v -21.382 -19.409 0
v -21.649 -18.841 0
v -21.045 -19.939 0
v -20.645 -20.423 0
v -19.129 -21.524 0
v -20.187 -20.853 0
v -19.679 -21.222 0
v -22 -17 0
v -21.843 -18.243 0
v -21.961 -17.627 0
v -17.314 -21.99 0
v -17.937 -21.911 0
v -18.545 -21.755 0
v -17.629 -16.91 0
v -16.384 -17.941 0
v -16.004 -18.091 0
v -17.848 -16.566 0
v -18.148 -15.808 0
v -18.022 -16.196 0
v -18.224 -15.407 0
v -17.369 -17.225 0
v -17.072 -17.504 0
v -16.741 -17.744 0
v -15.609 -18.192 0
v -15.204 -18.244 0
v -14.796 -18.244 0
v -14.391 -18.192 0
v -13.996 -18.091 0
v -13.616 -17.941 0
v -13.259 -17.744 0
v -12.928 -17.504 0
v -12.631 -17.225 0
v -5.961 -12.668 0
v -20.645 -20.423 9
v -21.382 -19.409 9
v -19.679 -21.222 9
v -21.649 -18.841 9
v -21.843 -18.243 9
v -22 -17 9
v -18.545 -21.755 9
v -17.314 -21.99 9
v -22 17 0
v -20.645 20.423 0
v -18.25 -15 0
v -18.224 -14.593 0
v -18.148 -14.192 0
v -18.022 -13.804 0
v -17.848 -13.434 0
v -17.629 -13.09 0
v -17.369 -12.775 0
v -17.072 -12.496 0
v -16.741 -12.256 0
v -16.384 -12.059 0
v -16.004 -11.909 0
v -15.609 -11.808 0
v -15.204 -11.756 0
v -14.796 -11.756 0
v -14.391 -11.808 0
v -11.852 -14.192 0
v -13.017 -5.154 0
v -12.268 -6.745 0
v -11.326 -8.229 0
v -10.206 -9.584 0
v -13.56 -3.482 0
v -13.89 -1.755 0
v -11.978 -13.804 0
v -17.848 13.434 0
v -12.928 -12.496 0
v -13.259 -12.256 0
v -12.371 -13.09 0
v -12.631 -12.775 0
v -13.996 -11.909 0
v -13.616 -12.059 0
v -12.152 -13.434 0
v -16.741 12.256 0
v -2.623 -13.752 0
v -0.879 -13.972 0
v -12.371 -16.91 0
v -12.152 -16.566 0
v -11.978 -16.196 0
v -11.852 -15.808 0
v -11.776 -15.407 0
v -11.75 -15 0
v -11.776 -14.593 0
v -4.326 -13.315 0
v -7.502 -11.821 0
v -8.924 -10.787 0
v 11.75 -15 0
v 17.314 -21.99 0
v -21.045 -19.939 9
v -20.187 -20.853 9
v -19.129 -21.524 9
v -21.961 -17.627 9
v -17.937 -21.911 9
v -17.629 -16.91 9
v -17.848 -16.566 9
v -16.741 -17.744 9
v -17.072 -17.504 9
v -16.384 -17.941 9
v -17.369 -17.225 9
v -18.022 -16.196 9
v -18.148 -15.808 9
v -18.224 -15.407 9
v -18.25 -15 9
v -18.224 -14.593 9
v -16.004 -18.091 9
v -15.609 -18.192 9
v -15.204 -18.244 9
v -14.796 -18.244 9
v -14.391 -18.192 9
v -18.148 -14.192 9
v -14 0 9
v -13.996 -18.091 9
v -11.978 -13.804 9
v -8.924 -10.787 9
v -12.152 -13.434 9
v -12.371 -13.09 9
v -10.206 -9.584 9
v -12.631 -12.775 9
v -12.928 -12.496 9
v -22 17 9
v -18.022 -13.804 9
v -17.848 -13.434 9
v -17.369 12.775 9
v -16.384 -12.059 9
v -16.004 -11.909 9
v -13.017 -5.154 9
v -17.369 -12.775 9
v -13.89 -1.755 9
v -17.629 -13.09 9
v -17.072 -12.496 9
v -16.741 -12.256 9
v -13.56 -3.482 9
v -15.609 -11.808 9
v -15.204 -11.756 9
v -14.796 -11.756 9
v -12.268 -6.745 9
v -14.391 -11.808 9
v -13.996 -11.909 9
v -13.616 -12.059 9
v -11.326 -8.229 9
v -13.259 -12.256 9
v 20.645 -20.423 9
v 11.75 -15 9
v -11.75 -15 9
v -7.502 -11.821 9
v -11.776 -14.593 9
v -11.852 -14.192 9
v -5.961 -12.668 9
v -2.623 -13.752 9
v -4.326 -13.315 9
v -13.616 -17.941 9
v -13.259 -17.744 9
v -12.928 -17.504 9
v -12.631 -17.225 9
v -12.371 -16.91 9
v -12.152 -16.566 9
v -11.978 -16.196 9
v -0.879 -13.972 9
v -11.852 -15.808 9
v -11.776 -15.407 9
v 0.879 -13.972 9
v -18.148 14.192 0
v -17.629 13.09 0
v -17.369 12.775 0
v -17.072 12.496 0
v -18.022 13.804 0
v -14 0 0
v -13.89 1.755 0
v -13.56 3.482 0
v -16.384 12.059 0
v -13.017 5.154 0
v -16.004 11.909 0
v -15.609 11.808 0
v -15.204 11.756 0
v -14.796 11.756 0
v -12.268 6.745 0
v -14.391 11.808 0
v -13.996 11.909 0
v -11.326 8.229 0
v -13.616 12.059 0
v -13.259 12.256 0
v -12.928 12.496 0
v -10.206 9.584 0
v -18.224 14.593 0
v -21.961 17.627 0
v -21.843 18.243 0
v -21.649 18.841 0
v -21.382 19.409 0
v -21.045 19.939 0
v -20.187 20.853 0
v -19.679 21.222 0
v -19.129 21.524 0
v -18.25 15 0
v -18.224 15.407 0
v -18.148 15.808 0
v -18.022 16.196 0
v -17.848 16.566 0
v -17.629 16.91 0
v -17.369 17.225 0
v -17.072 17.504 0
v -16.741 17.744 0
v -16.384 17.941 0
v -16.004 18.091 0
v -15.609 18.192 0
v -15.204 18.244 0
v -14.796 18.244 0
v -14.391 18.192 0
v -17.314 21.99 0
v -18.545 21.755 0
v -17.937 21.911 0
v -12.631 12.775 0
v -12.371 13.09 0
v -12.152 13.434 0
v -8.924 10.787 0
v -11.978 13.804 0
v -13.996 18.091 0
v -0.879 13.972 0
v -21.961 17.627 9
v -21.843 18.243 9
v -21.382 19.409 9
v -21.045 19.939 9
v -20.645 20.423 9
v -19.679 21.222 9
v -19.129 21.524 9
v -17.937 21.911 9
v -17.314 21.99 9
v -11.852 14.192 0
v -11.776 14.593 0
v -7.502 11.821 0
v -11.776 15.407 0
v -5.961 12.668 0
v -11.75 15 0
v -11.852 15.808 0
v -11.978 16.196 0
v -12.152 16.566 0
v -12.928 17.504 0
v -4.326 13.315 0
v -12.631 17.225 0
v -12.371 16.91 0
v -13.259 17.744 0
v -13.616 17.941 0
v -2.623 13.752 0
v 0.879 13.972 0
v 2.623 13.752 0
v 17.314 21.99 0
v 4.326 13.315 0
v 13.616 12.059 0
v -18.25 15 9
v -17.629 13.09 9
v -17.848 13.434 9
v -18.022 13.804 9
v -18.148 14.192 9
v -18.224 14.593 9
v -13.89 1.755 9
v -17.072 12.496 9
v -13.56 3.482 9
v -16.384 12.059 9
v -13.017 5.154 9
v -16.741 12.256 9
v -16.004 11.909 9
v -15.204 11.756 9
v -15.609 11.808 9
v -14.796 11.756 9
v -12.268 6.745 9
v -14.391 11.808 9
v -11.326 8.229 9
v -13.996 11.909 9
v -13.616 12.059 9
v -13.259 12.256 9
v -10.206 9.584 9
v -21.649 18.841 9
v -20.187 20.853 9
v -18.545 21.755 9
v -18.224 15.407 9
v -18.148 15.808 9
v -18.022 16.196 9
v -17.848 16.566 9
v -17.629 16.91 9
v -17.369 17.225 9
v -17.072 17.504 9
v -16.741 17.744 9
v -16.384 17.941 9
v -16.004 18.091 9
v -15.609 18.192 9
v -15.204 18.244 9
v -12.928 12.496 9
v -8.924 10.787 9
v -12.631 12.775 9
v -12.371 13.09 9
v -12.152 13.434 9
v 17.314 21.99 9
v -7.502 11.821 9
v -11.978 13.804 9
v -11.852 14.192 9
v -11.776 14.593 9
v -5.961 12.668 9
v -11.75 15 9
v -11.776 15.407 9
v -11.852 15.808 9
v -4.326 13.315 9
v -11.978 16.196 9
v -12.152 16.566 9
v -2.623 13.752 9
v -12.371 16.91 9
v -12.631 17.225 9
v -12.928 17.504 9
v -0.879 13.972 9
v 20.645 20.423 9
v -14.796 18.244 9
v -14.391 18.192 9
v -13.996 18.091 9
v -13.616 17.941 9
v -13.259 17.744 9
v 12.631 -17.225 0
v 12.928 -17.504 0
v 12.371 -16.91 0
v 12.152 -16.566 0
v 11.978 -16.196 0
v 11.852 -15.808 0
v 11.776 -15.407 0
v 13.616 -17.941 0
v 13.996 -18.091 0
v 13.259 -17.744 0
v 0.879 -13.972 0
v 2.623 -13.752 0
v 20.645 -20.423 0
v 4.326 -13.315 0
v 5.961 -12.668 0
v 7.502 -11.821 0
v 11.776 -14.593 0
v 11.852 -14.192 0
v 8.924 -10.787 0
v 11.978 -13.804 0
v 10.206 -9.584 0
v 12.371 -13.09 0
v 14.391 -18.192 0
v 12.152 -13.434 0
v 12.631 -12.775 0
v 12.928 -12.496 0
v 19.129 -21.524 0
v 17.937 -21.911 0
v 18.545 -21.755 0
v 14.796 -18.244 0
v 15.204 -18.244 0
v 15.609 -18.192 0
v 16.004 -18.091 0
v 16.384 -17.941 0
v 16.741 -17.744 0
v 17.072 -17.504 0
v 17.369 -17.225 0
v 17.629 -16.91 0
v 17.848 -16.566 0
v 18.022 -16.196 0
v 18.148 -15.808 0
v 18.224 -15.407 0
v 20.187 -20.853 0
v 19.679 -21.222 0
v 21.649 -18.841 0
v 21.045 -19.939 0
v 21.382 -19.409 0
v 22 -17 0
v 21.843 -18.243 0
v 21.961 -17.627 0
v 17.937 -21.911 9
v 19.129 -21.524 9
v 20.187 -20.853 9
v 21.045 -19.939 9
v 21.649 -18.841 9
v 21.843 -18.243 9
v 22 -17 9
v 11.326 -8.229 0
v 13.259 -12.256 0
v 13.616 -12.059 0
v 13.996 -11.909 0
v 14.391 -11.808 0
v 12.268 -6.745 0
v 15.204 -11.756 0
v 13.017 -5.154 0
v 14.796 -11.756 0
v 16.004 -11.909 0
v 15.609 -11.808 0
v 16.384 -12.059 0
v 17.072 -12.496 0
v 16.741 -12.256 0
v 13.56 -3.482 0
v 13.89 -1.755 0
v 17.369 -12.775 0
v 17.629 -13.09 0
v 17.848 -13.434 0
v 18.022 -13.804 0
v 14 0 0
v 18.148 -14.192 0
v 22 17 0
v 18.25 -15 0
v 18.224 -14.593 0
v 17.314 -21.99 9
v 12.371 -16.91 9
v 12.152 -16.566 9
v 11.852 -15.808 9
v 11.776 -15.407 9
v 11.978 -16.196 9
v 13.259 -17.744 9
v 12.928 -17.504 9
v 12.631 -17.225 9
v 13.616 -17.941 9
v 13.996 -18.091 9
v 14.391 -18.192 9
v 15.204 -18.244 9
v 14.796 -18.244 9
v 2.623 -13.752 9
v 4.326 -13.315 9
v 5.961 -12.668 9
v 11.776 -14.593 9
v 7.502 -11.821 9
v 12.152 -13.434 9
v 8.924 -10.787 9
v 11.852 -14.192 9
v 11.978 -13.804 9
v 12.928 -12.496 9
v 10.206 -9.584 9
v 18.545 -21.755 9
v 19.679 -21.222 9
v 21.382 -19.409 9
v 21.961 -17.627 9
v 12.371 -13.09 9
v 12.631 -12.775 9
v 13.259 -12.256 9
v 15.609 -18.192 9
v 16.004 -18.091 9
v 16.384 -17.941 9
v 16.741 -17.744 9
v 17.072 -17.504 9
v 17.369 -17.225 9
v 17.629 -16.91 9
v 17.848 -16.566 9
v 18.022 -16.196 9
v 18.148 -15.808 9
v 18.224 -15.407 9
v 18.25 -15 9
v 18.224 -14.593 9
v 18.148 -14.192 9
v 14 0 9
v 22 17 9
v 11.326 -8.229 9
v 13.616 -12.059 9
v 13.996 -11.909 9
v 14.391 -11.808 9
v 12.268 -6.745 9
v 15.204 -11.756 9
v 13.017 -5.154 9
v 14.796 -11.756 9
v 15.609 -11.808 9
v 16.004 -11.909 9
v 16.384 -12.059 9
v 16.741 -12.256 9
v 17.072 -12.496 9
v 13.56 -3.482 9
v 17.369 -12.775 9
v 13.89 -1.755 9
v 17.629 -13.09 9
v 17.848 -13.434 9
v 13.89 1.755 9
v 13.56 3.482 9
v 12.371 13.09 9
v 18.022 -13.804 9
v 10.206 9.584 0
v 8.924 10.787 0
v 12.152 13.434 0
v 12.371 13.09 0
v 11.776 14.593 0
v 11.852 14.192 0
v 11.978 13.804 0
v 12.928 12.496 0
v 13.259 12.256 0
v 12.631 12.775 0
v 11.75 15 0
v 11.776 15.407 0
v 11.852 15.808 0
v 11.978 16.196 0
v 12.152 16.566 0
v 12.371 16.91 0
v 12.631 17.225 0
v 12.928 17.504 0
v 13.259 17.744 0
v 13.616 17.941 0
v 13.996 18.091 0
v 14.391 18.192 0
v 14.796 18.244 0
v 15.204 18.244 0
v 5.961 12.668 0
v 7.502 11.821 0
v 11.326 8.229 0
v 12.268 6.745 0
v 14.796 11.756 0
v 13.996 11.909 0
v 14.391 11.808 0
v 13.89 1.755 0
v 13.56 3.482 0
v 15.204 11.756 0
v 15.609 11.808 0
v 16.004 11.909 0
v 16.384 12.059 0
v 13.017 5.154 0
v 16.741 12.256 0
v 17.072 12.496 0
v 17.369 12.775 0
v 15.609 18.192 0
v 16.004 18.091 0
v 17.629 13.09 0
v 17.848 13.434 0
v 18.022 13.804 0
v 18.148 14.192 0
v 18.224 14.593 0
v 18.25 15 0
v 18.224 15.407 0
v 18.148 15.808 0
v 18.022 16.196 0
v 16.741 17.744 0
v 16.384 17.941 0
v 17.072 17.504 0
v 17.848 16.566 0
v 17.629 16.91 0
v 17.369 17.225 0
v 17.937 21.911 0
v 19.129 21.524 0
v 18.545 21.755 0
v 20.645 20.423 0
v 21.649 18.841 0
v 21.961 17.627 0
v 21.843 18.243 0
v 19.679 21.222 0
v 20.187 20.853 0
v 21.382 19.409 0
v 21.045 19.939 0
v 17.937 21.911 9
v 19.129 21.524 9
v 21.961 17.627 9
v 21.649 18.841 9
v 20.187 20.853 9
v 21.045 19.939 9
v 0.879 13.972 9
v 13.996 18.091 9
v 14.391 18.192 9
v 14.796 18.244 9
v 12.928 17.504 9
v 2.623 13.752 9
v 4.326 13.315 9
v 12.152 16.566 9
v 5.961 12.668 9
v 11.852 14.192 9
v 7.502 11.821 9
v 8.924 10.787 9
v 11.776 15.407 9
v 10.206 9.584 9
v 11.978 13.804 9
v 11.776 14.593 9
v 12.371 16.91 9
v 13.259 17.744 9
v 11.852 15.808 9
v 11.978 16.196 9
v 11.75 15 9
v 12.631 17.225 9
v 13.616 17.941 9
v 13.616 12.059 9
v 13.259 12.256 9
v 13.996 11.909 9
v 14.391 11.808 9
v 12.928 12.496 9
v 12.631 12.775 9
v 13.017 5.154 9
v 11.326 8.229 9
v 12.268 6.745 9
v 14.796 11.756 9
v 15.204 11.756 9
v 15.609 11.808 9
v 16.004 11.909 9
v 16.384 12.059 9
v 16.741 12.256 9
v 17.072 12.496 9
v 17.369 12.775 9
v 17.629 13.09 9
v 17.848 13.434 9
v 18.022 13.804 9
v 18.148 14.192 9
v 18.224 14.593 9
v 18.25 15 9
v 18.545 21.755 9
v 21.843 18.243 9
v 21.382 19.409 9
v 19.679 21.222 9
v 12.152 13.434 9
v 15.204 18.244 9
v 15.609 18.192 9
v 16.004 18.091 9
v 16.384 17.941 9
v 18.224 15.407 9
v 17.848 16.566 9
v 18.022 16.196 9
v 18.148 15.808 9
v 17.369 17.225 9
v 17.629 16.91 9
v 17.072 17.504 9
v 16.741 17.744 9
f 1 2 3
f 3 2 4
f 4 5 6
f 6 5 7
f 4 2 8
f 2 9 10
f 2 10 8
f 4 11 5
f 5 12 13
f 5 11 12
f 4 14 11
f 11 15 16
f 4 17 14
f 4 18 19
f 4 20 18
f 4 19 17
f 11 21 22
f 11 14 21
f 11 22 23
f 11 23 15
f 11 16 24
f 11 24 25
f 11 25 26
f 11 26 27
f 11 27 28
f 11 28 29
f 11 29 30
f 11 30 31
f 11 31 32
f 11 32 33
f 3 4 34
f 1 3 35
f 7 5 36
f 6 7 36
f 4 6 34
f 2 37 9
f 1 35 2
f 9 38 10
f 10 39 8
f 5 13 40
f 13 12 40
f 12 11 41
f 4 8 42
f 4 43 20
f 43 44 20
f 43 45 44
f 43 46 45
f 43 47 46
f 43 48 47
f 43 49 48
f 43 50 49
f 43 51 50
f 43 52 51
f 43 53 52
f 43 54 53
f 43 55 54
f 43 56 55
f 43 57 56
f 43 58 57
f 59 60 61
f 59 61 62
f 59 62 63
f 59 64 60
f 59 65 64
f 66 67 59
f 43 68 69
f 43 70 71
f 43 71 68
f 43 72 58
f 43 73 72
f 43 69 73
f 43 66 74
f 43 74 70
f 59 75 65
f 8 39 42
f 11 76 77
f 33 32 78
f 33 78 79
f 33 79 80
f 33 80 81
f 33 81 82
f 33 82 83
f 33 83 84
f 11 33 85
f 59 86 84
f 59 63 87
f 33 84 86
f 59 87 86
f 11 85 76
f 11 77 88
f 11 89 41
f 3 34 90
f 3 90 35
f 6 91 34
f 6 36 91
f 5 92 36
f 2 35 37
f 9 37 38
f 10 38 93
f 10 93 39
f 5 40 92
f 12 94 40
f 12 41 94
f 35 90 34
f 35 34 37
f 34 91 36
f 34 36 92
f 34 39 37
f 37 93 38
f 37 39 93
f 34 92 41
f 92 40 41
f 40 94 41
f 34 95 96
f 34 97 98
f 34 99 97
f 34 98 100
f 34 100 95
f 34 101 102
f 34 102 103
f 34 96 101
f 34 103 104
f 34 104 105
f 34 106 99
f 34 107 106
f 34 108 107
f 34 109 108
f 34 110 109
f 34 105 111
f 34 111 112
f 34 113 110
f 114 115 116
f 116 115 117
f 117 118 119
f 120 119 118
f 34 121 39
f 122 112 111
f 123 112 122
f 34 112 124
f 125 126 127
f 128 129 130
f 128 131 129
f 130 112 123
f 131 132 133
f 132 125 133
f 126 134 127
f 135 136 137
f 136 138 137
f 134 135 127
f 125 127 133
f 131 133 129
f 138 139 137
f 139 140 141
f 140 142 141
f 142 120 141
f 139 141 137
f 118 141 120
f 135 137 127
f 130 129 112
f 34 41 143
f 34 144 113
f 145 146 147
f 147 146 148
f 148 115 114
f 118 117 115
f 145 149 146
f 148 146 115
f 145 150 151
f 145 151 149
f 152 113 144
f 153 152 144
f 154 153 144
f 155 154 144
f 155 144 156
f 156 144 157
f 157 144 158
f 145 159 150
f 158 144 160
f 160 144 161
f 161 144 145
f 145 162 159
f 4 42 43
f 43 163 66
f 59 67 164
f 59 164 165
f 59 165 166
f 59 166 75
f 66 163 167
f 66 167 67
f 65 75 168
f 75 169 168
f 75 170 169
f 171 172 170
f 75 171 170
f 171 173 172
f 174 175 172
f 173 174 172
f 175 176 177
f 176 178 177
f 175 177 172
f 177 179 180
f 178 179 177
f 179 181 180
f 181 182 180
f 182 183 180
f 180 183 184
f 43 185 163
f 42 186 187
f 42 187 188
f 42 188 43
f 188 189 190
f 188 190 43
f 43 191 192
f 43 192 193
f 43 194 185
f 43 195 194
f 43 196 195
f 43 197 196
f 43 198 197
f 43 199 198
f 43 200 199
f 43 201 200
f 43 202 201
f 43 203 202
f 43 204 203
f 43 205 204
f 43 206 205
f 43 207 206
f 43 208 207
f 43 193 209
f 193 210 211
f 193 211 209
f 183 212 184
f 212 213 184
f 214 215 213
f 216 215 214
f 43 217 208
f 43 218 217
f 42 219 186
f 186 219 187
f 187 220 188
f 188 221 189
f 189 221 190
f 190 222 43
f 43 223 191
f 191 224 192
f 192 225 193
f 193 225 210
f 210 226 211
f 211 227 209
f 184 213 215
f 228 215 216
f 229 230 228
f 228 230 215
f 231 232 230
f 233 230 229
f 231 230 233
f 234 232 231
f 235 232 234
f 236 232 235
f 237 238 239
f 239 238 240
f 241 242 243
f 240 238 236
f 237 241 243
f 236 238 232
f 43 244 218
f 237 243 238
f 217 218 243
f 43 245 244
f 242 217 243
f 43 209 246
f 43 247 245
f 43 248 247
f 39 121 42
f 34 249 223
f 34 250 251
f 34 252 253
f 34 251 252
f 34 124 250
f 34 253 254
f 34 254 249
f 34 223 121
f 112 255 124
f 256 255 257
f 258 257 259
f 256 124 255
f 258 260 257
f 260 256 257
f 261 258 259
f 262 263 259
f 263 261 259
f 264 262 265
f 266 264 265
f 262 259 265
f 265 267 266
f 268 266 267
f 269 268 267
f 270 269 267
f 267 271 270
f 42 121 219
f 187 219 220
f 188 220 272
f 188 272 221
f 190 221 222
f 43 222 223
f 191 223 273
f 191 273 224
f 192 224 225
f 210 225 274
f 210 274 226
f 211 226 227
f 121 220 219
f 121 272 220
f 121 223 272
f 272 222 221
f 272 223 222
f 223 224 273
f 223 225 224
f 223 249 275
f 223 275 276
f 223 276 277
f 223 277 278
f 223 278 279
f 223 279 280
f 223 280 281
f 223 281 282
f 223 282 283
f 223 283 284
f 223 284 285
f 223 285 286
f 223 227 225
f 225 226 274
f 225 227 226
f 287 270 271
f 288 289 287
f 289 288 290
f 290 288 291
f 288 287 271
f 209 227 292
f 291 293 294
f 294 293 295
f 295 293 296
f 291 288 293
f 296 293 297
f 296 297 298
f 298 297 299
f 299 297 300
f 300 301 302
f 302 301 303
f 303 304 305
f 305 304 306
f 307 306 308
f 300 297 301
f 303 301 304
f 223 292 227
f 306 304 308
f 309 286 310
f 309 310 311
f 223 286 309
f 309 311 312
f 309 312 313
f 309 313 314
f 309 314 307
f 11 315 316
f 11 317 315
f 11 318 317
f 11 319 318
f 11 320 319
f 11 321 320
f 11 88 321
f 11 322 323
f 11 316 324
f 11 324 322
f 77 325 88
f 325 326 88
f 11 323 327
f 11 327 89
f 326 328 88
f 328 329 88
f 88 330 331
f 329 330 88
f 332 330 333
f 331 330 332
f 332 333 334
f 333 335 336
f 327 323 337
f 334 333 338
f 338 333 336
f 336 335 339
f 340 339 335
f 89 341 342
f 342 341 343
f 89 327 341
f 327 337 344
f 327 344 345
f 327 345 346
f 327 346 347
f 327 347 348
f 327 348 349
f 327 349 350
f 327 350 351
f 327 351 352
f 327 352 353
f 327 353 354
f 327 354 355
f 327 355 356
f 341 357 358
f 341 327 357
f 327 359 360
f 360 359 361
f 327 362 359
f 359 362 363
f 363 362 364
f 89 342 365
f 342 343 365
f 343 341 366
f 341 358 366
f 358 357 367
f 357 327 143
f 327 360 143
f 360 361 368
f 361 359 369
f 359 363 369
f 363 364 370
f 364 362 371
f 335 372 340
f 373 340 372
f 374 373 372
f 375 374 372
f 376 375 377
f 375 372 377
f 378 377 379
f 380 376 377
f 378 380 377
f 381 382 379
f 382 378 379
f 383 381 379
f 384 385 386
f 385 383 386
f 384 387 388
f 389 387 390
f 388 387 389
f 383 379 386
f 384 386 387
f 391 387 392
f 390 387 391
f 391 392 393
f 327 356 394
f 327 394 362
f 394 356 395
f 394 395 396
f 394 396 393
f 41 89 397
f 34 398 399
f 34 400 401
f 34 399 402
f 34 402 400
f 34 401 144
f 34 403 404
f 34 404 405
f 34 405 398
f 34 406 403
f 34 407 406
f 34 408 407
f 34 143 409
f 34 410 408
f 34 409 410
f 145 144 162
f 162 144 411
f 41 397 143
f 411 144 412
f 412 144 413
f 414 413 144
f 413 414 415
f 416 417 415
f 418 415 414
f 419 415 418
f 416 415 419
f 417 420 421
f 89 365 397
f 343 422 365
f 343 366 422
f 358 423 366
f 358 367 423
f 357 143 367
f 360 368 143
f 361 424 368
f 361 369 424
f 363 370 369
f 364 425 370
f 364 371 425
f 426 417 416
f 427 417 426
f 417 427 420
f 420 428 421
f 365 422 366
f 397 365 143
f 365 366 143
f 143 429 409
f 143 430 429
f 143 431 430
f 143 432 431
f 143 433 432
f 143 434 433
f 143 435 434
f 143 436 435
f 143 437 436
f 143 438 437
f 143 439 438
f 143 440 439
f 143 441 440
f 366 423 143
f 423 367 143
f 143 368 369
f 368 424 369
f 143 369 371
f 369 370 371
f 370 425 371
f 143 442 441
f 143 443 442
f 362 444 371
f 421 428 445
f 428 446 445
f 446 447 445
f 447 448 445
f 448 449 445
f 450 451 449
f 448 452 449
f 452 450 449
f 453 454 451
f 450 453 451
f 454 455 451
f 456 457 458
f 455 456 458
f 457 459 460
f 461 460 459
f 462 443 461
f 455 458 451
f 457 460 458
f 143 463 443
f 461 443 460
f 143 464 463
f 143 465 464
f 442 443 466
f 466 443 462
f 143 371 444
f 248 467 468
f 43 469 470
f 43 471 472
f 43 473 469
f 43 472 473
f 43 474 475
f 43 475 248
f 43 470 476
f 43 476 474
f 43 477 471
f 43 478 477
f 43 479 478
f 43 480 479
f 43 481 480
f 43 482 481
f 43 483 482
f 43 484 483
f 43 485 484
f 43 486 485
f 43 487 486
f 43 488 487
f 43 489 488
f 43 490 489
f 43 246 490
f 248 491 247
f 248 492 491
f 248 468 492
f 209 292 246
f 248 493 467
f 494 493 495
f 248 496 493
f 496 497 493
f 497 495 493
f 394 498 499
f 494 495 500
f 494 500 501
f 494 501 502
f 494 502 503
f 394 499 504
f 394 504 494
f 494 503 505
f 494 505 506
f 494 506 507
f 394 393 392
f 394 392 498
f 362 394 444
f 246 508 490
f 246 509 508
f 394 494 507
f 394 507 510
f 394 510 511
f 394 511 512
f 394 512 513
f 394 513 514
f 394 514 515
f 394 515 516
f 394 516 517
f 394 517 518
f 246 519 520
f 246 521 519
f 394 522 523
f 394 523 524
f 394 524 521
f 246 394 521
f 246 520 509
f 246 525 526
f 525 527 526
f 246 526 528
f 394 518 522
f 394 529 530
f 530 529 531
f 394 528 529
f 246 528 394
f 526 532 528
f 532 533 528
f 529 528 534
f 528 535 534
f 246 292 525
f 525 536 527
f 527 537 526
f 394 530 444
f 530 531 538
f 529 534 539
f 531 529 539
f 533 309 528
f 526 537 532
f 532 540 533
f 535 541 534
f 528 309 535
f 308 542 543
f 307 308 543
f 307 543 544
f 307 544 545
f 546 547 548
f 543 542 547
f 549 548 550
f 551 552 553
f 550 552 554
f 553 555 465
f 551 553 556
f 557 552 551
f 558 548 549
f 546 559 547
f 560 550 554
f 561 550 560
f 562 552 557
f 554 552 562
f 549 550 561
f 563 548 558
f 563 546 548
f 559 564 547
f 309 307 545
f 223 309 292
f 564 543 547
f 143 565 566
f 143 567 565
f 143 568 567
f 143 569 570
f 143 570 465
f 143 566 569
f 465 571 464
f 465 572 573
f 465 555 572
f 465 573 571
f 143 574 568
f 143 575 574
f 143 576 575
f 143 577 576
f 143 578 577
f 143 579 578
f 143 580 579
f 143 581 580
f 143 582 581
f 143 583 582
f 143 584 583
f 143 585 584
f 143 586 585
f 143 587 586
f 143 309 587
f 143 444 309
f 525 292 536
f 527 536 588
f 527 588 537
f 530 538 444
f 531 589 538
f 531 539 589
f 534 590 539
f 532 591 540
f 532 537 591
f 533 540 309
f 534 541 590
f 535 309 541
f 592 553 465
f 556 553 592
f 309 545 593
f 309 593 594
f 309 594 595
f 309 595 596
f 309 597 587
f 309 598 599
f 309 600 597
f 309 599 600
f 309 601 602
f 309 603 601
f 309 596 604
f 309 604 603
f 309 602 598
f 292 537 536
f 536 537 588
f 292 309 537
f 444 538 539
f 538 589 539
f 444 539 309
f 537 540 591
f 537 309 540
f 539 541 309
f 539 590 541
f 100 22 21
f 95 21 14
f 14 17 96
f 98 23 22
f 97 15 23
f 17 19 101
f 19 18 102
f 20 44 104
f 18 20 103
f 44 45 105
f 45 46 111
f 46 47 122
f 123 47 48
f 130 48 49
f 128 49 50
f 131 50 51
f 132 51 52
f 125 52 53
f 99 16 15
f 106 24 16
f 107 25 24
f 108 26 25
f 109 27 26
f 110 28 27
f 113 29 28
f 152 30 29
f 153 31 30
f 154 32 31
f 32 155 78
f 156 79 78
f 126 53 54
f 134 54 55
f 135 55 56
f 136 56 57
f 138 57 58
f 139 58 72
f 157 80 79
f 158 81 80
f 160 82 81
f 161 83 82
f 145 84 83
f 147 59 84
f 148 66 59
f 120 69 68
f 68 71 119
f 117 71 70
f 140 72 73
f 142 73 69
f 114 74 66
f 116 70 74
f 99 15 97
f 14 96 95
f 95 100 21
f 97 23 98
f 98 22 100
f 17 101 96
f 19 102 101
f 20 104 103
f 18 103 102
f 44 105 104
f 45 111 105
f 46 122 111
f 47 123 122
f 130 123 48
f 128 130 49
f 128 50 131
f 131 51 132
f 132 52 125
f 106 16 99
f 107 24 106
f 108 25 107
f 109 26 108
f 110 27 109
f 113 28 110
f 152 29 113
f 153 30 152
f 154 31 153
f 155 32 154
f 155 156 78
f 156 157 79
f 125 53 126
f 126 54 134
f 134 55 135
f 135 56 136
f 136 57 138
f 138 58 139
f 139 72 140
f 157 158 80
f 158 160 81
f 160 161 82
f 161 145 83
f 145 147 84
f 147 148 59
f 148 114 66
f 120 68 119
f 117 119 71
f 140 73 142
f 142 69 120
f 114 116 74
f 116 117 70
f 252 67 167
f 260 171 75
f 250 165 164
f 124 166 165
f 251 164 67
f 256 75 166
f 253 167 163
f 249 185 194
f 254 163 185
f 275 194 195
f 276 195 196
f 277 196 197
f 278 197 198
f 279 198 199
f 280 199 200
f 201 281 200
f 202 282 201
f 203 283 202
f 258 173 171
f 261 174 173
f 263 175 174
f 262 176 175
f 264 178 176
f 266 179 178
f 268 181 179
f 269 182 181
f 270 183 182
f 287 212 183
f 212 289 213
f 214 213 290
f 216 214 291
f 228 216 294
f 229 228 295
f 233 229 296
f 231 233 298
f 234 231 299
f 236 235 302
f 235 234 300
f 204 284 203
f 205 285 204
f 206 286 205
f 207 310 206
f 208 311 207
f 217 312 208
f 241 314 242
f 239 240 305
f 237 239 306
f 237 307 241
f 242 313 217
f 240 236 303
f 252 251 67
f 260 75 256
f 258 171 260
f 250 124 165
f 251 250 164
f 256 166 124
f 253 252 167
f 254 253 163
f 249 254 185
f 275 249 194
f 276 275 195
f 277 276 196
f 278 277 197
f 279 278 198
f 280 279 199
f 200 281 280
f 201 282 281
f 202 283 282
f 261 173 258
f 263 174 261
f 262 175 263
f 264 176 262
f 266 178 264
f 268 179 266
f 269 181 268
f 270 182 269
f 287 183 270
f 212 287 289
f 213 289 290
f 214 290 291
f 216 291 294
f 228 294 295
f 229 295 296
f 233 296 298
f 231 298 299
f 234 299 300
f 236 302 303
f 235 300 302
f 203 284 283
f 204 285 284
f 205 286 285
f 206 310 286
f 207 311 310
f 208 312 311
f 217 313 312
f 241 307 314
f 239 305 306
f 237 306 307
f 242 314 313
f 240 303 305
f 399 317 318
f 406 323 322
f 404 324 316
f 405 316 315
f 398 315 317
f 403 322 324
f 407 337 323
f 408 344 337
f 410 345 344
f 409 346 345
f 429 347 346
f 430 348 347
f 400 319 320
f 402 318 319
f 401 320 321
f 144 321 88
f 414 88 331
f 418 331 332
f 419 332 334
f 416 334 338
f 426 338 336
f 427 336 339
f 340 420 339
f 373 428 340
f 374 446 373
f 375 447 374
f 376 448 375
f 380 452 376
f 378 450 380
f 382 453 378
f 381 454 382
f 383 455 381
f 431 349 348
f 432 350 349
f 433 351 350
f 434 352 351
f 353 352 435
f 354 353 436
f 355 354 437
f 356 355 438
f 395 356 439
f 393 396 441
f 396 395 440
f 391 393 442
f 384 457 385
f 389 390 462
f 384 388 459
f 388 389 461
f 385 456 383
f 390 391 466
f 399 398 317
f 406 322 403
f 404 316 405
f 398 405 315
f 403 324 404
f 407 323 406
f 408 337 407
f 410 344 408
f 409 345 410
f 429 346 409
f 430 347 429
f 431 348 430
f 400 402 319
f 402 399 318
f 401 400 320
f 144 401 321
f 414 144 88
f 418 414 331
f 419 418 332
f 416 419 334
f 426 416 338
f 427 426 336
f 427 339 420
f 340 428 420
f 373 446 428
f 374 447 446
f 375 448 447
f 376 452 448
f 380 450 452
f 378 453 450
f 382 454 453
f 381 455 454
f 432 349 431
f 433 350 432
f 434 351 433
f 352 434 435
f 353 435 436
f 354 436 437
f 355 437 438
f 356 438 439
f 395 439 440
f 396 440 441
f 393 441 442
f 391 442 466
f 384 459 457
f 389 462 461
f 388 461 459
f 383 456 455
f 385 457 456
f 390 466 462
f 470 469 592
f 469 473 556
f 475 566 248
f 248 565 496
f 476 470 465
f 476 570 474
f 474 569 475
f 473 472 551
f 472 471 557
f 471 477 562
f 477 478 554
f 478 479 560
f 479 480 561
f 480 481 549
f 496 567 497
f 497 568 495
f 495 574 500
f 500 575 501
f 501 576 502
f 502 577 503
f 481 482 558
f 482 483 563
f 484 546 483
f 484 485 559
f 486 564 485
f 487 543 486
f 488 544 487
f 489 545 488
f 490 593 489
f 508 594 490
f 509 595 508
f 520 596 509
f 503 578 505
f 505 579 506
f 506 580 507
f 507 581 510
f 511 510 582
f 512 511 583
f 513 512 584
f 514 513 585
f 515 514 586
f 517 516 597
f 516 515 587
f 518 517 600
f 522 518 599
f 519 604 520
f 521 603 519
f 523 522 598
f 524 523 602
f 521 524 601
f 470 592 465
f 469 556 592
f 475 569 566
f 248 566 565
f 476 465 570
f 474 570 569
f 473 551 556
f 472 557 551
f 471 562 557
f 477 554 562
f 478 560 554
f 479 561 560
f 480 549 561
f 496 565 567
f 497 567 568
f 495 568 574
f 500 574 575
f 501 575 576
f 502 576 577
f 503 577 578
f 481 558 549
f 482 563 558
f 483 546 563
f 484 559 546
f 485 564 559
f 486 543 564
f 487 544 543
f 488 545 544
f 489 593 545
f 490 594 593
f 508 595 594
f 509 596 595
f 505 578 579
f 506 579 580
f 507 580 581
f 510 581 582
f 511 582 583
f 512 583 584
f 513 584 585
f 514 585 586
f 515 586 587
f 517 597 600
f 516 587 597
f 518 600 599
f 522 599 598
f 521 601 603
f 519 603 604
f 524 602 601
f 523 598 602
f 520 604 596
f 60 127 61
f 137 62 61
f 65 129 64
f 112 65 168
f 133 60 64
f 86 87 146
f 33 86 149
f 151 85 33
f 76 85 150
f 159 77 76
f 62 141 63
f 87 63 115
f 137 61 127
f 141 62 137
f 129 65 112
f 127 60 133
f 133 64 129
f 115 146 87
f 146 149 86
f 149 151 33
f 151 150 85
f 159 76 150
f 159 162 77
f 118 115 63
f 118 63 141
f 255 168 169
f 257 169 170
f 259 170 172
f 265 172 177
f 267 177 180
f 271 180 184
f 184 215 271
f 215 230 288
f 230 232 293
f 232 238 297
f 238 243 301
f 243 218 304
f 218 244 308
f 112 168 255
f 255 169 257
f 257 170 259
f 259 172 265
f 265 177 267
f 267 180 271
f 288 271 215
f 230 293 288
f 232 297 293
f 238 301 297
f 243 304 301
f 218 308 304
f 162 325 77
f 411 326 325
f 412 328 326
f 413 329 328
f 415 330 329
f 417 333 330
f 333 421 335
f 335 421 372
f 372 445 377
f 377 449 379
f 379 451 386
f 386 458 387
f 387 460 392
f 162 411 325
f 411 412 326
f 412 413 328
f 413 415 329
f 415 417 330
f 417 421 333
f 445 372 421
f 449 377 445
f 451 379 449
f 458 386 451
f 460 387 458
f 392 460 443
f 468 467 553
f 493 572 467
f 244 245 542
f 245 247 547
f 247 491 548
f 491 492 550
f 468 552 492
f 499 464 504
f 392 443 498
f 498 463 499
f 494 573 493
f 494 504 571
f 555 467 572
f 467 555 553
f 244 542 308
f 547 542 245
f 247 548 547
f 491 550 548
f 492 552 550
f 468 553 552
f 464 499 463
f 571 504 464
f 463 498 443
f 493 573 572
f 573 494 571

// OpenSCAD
$fn = 50;

difference() {
	union() {
		hull() {
			translate(v = [-17.0, 17.0, 0]) {
				cylinder(h = 9, r = 5);
			}
			translate(v = [17.0, 17.0, 0]) {
				cylinder(h = 9, r = 5);
			}
			translate(v = [-17.0, -17.0, 0]) {
				cylinder(h = 9, r = 5);
			}
			translate(v = [17.0, -17.0, 0]) {
				cylinder(h = 9, r = 5);
			}
		}
	}
	union() {
		translate(v = [-15.0, -15.0, -100.0]) {
			cylinder(h = 200, r = 3.25);
		}
		translate(v = [-15.0, 15.0, -100.0]) {
			cylinder(h = 200, r = 3.25);
		}
		translate(v = [15.0, -15.0, -100.0]) {
			cylinder(h = 200, r = 3.25);
		}
		translate(v = [15.0, 15.0, -100.0]) {
			cylinder(h = 200, r = 3.25);
		}
		translate(v = [-15.0, -15.0, -100.0]) {
			cylinder(h = 200, r = 1.8);
		}
		translate(v = [-15.0, 15.0, -100.0]) {
			cylinder(h = 200, r = 1.8);
		}
		translate(v = [15.0, -15.0, -100.0]) {
			cylinder(h = 200, r = 1.8);
		}
		translate(v = [15.0, 15.0, -100.0]) {
			cylinder(h = 200, r = 1.8);
		}
		cylinder(h = 9, r = 14.0);
	}
}
